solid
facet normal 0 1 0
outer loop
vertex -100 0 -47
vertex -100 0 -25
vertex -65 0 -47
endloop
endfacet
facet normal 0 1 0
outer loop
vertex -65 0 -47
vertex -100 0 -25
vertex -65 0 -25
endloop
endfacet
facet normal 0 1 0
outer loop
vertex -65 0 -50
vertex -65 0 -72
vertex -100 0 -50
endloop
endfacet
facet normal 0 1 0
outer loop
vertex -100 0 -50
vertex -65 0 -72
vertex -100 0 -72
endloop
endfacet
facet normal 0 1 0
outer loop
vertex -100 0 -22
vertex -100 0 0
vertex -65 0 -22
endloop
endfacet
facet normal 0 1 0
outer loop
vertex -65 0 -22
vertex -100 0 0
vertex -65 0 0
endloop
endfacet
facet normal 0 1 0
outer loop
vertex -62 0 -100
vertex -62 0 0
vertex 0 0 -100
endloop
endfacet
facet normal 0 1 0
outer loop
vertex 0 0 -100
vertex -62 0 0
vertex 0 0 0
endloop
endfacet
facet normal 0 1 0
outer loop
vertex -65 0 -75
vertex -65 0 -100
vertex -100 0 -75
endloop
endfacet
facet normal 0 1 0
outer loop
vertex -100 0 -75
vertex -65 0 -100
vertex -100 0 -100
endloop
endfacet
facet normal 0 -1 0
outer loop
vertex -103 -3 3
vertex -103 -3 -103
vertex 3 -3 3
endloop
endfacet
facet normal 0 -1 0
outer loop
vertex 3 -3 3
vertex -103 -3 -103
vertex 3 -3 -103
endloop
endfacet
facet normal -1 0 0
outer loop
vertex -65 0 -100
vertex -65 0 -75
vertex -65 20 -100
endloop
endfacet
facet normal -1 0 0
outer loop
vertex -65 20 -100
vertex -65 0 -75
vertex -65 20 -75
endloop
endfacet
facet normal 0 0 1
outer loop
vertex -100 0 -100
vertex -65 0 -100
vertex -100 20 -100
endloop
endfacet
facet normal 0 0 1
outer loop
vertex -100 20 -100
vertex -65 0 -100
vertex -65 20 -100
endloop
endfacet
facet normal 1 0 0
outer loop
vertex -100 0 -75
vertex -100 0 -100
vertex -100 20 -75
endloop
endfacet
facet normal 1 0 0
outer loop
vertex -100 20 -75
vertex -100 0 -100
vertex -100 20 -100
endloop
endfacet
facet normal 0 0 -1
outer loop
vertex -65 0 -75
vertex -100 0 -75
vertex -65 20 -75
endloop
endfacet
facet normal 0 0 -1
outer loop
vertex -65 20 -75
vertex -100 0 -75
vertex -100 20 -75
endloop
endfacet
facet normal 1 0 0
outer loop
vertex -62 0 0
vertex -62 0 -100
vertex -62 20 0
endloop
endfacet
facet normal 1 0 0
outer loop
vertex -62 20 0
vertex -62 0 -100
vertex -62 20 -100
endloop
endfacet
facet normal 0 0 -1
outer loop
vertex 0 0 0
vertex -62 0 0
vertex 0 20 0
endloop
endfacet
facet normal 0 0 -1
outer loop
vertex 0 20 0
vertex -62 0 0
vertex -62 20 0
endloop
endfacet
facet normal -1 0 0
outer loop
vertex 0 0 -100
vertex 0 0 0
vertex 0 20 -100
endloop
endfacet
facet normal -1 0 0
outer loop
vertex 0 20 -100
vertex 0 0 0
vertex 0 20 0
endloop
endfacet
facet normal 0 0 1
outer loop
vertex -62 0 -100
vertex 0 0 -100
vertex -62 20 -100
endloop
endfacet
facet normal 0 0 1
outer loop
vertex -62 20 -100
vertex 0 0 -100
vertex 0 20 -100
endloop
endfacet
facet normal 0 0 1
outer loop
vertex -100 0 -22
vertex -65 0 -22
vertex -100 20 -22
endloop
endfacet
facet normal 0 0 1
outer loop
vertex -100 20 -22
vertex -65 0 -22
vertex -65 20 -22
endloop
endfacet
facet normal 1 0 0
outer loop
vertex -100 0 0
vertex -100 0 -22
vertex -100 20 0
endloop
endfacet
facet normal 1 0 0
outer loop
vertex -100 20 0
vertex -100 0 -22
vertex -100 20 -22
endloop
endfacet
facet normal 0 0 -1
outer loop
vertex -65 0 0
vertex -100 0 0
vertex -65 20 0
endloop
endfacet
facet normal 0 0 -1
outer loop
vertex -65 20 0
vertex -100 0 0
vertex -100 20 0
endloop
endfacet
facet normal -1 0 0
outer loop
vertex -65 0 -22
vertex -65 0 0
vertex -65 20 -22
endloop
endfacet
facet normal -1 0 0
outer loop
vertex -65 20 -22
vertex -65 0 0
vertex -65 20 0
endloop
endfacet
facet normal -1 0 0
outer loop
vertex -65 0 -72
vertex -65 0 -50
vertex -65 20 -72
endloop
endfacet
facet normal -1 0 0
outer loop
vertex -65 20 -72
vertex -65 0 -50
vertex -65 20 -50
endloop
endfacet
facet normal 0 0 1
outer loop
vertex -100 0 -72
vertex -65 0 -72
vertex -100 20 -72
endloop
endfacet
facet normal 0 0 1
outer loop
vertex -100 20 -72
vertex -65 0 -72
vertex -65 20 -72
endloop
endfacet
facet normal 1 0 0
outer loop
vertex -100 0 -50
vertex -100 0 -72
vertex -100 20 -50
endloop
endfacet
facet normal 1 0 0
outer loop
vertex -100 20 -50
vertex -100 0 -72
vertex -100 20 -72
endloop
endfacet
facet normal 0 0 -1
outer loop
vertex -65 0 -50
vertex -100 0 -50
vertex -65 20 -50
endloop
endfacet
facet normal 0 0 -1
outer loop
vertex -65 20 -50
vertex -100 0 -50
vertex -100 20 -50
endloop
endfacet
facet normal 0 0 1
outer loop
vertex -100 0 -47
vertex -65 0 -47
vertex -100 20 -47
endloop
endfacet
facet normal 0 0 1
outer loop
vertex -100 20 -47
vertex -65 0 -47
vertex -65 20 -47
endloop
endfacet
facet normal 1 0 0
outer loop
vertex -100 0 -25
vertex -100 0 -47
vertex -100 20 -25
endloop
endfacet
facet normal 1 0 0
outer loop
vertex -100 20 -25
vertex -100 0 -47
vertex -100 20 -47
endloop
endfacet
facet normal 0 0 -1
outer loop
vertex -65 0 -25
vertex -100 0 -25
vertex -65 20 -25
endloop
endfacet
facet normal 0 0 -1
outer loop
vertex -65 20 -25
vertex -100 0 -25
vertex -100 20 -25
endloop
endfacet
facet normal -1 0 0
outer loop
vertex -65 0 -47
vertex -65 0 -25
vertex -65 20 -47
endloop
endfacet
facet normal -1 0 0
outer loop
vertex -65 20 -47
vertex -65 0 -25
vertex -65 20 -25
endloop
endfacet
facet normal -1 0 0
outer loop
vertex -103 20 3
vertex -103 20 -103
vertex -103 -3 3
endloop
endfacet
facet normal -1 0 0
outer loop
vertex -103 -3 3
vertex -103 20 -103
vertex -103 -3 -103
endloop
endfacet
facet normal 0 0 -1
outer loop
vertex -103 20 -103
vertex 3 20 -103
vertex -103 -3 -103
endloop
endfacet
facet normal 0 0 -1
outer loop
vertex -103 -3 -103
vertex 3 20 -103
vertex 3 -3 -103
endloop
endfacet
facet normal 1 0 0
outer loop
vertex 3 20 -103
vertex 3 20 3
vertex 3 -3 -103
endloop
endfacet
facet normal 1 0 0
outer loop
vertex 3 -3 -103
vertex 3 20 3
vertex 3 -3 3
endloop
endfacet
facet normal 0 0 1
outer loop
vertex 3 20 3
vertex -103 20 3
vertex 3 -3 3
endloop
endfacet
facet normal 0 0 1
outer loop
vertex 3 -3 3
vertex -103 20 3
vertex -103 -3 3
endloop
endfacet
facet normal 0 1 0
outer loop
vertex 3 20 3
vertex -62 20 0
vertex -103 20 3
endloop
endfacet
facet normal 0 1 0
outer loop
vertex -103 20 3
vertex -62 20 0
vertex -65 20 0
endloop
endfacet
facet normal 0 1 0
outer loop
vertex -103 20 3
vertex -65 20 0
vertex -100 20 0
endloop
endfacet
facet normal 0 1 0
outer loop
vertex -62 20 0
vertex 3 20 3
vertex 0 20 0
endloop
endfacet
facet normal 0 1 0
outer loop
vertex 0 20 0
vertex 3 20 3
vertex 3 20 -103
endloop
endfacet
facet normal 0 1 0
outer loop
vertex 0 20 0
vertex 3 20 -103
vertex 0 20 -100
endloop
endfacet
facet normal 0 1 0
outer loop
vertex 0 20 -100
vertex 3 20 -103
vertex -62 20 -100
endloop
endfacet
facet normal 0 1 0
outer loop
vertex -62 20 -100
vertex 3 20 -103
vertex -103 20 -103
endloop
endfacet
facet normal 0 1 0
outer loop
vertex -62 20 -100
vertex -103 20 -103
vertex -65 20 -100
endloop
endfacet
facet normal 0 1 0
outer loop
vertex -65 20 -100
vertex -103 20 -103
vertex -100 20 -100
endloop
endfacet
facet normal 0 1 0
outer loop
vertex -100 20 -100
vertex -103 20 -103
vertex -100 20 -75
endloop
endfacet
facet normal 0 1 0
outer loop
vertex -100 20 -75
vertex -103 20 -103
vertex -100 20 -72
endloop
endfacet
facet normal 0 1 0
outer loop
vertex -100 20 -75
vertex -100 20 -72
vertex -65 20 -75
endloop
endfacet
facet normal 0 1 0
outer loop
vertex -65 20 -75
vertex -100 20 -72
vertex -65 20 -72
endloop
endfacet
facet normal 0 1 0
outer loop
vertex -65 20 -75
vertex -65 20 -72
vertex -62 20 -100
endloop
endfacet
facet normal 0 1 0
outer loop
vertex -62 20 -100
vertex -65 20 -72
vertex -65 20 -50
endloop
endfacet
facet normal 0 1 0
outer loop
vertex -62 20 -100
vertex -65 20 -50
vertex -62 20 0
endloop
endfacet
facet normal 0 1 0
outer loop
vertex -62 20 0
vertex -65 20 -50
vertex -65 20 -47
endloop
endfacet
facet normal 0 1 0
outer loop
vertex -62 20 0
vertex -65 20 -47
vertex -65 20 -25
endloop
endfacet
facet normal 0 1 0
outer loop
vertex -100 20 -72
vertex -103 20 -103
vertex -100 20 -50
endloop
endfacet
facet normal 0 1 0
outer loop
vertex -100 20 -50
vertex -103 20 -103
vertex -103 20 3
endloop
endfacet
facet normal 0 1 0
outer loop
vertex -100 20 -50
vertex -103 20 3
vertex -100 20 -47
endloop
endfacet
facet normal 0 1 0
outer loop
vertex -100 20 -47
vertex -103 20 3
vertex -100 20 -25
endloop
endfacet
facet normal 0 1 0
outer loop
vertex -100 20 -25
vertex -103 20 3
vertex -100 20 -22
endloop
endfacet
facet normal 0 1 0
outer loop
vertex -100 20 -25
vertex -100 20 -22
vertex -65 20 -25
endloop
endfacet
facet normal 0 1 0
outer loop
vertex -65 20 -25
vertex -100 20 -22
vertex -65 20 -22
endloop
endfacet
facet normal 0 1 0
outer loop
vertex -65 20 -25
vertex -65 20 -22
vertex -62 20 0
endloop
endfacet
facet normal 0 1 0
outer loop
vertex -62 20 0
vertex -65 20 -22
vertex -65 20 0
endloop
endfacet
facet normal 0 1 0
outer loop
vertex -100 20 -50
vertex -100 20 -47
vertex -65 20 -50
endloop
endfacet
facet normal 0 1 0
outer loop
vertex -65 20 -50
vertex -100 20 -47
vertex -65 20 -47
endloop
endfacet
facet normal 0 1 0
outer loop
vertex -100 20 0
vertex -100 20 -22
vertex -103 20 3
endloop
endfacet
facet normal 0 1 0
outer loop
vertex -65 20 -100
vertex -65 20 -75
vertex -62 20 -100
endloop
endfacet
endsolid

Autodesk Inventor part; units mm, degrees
ref_plane "YZ Plane" through (0, 0, 0) normal (1, 0, 0) x (0, 1, 0)
ref_plane "XZ Plane" through (0, 0, 0) normal (0, 1, 0) x (-1, 0, 0)
ref_plane "XY Plane" through (0, 0, 0) normal (0, 0, 1) x (1, 0, 0)
sketch "Boceto1" plane through (0, 0, 0) normal (0, 1, 0) x (-1, 0, 0)
  line L0 (0, 0) -> (100, 0)
  line L1 (100, 0) -> (100, -100)
  line L2 (100, -100) -> (0, -100)
  line L3 (0, -100) -> (0, 0)
  line L4 (100, 0) -> (65, 0)
  line L5 (65, 0) -> (65, -50)
  line L6 (65, -100) -> (100, -100)
  line L7 (100, -100) -> (100, 0)
  line L8 (65, -50) -> (100, -50)
  line L9 (65, -50) -> (65, -100)
  line L10 (65, -25) -> (100, -25)
  line L11 (65, -75) -> (100, -75)
  line L12 (103, -103) -> (103, 3)
  line L13 (103, 3) -> (-3, 3)
  line L14 (-3, 3) -> (-3, -103)
  line L15 (-3, -103) -> (103, -103)
  line L16 (65, -72) -> (100, -72)
  line L17 (65, -47) -> (100, -47)
  line L18 (65, -22) -> (100, -22)
  line L19 (62, 0) -> (62, -100)
  dimension "d0" = 100
  dimension "d1" = 100
  dimension "d2" = 3
  dimension "d3" = 3
  dimension "d4" = 3
  dimension "d5" = 3
  dimension "d6" = 3
  dimension "d7" = 35
extrude "Extrusión1" add sketch "Boceto1" along normal blind 20 contours L0 L5 L9 L2 L19 | L18 L1 L10 L5 | L9 L16 L1 L11 | L17 L1 L8 L5 | L15 L14 L13 L12
extrude "Extrusión2" add sketch "Boceto1" against normal blind 3 contours L0 L19 L2 L3 | L0 L5 L9 L2 L19 | L0 L1 L18 L5 | L18 L1 L10 L5 | L9 L11 L1 L2 | L10 L1 L17 L5 | L9 L16 L1 L11 | L17 L1 L8 L5 | L9 L8 L1 L16 | L15 L14 L13 L12
equation "\"d3\" = d2"
equation "\"d4\" = d3"
equation "\"d5\" = d2"
properties part number "Cajita Organizadora"
